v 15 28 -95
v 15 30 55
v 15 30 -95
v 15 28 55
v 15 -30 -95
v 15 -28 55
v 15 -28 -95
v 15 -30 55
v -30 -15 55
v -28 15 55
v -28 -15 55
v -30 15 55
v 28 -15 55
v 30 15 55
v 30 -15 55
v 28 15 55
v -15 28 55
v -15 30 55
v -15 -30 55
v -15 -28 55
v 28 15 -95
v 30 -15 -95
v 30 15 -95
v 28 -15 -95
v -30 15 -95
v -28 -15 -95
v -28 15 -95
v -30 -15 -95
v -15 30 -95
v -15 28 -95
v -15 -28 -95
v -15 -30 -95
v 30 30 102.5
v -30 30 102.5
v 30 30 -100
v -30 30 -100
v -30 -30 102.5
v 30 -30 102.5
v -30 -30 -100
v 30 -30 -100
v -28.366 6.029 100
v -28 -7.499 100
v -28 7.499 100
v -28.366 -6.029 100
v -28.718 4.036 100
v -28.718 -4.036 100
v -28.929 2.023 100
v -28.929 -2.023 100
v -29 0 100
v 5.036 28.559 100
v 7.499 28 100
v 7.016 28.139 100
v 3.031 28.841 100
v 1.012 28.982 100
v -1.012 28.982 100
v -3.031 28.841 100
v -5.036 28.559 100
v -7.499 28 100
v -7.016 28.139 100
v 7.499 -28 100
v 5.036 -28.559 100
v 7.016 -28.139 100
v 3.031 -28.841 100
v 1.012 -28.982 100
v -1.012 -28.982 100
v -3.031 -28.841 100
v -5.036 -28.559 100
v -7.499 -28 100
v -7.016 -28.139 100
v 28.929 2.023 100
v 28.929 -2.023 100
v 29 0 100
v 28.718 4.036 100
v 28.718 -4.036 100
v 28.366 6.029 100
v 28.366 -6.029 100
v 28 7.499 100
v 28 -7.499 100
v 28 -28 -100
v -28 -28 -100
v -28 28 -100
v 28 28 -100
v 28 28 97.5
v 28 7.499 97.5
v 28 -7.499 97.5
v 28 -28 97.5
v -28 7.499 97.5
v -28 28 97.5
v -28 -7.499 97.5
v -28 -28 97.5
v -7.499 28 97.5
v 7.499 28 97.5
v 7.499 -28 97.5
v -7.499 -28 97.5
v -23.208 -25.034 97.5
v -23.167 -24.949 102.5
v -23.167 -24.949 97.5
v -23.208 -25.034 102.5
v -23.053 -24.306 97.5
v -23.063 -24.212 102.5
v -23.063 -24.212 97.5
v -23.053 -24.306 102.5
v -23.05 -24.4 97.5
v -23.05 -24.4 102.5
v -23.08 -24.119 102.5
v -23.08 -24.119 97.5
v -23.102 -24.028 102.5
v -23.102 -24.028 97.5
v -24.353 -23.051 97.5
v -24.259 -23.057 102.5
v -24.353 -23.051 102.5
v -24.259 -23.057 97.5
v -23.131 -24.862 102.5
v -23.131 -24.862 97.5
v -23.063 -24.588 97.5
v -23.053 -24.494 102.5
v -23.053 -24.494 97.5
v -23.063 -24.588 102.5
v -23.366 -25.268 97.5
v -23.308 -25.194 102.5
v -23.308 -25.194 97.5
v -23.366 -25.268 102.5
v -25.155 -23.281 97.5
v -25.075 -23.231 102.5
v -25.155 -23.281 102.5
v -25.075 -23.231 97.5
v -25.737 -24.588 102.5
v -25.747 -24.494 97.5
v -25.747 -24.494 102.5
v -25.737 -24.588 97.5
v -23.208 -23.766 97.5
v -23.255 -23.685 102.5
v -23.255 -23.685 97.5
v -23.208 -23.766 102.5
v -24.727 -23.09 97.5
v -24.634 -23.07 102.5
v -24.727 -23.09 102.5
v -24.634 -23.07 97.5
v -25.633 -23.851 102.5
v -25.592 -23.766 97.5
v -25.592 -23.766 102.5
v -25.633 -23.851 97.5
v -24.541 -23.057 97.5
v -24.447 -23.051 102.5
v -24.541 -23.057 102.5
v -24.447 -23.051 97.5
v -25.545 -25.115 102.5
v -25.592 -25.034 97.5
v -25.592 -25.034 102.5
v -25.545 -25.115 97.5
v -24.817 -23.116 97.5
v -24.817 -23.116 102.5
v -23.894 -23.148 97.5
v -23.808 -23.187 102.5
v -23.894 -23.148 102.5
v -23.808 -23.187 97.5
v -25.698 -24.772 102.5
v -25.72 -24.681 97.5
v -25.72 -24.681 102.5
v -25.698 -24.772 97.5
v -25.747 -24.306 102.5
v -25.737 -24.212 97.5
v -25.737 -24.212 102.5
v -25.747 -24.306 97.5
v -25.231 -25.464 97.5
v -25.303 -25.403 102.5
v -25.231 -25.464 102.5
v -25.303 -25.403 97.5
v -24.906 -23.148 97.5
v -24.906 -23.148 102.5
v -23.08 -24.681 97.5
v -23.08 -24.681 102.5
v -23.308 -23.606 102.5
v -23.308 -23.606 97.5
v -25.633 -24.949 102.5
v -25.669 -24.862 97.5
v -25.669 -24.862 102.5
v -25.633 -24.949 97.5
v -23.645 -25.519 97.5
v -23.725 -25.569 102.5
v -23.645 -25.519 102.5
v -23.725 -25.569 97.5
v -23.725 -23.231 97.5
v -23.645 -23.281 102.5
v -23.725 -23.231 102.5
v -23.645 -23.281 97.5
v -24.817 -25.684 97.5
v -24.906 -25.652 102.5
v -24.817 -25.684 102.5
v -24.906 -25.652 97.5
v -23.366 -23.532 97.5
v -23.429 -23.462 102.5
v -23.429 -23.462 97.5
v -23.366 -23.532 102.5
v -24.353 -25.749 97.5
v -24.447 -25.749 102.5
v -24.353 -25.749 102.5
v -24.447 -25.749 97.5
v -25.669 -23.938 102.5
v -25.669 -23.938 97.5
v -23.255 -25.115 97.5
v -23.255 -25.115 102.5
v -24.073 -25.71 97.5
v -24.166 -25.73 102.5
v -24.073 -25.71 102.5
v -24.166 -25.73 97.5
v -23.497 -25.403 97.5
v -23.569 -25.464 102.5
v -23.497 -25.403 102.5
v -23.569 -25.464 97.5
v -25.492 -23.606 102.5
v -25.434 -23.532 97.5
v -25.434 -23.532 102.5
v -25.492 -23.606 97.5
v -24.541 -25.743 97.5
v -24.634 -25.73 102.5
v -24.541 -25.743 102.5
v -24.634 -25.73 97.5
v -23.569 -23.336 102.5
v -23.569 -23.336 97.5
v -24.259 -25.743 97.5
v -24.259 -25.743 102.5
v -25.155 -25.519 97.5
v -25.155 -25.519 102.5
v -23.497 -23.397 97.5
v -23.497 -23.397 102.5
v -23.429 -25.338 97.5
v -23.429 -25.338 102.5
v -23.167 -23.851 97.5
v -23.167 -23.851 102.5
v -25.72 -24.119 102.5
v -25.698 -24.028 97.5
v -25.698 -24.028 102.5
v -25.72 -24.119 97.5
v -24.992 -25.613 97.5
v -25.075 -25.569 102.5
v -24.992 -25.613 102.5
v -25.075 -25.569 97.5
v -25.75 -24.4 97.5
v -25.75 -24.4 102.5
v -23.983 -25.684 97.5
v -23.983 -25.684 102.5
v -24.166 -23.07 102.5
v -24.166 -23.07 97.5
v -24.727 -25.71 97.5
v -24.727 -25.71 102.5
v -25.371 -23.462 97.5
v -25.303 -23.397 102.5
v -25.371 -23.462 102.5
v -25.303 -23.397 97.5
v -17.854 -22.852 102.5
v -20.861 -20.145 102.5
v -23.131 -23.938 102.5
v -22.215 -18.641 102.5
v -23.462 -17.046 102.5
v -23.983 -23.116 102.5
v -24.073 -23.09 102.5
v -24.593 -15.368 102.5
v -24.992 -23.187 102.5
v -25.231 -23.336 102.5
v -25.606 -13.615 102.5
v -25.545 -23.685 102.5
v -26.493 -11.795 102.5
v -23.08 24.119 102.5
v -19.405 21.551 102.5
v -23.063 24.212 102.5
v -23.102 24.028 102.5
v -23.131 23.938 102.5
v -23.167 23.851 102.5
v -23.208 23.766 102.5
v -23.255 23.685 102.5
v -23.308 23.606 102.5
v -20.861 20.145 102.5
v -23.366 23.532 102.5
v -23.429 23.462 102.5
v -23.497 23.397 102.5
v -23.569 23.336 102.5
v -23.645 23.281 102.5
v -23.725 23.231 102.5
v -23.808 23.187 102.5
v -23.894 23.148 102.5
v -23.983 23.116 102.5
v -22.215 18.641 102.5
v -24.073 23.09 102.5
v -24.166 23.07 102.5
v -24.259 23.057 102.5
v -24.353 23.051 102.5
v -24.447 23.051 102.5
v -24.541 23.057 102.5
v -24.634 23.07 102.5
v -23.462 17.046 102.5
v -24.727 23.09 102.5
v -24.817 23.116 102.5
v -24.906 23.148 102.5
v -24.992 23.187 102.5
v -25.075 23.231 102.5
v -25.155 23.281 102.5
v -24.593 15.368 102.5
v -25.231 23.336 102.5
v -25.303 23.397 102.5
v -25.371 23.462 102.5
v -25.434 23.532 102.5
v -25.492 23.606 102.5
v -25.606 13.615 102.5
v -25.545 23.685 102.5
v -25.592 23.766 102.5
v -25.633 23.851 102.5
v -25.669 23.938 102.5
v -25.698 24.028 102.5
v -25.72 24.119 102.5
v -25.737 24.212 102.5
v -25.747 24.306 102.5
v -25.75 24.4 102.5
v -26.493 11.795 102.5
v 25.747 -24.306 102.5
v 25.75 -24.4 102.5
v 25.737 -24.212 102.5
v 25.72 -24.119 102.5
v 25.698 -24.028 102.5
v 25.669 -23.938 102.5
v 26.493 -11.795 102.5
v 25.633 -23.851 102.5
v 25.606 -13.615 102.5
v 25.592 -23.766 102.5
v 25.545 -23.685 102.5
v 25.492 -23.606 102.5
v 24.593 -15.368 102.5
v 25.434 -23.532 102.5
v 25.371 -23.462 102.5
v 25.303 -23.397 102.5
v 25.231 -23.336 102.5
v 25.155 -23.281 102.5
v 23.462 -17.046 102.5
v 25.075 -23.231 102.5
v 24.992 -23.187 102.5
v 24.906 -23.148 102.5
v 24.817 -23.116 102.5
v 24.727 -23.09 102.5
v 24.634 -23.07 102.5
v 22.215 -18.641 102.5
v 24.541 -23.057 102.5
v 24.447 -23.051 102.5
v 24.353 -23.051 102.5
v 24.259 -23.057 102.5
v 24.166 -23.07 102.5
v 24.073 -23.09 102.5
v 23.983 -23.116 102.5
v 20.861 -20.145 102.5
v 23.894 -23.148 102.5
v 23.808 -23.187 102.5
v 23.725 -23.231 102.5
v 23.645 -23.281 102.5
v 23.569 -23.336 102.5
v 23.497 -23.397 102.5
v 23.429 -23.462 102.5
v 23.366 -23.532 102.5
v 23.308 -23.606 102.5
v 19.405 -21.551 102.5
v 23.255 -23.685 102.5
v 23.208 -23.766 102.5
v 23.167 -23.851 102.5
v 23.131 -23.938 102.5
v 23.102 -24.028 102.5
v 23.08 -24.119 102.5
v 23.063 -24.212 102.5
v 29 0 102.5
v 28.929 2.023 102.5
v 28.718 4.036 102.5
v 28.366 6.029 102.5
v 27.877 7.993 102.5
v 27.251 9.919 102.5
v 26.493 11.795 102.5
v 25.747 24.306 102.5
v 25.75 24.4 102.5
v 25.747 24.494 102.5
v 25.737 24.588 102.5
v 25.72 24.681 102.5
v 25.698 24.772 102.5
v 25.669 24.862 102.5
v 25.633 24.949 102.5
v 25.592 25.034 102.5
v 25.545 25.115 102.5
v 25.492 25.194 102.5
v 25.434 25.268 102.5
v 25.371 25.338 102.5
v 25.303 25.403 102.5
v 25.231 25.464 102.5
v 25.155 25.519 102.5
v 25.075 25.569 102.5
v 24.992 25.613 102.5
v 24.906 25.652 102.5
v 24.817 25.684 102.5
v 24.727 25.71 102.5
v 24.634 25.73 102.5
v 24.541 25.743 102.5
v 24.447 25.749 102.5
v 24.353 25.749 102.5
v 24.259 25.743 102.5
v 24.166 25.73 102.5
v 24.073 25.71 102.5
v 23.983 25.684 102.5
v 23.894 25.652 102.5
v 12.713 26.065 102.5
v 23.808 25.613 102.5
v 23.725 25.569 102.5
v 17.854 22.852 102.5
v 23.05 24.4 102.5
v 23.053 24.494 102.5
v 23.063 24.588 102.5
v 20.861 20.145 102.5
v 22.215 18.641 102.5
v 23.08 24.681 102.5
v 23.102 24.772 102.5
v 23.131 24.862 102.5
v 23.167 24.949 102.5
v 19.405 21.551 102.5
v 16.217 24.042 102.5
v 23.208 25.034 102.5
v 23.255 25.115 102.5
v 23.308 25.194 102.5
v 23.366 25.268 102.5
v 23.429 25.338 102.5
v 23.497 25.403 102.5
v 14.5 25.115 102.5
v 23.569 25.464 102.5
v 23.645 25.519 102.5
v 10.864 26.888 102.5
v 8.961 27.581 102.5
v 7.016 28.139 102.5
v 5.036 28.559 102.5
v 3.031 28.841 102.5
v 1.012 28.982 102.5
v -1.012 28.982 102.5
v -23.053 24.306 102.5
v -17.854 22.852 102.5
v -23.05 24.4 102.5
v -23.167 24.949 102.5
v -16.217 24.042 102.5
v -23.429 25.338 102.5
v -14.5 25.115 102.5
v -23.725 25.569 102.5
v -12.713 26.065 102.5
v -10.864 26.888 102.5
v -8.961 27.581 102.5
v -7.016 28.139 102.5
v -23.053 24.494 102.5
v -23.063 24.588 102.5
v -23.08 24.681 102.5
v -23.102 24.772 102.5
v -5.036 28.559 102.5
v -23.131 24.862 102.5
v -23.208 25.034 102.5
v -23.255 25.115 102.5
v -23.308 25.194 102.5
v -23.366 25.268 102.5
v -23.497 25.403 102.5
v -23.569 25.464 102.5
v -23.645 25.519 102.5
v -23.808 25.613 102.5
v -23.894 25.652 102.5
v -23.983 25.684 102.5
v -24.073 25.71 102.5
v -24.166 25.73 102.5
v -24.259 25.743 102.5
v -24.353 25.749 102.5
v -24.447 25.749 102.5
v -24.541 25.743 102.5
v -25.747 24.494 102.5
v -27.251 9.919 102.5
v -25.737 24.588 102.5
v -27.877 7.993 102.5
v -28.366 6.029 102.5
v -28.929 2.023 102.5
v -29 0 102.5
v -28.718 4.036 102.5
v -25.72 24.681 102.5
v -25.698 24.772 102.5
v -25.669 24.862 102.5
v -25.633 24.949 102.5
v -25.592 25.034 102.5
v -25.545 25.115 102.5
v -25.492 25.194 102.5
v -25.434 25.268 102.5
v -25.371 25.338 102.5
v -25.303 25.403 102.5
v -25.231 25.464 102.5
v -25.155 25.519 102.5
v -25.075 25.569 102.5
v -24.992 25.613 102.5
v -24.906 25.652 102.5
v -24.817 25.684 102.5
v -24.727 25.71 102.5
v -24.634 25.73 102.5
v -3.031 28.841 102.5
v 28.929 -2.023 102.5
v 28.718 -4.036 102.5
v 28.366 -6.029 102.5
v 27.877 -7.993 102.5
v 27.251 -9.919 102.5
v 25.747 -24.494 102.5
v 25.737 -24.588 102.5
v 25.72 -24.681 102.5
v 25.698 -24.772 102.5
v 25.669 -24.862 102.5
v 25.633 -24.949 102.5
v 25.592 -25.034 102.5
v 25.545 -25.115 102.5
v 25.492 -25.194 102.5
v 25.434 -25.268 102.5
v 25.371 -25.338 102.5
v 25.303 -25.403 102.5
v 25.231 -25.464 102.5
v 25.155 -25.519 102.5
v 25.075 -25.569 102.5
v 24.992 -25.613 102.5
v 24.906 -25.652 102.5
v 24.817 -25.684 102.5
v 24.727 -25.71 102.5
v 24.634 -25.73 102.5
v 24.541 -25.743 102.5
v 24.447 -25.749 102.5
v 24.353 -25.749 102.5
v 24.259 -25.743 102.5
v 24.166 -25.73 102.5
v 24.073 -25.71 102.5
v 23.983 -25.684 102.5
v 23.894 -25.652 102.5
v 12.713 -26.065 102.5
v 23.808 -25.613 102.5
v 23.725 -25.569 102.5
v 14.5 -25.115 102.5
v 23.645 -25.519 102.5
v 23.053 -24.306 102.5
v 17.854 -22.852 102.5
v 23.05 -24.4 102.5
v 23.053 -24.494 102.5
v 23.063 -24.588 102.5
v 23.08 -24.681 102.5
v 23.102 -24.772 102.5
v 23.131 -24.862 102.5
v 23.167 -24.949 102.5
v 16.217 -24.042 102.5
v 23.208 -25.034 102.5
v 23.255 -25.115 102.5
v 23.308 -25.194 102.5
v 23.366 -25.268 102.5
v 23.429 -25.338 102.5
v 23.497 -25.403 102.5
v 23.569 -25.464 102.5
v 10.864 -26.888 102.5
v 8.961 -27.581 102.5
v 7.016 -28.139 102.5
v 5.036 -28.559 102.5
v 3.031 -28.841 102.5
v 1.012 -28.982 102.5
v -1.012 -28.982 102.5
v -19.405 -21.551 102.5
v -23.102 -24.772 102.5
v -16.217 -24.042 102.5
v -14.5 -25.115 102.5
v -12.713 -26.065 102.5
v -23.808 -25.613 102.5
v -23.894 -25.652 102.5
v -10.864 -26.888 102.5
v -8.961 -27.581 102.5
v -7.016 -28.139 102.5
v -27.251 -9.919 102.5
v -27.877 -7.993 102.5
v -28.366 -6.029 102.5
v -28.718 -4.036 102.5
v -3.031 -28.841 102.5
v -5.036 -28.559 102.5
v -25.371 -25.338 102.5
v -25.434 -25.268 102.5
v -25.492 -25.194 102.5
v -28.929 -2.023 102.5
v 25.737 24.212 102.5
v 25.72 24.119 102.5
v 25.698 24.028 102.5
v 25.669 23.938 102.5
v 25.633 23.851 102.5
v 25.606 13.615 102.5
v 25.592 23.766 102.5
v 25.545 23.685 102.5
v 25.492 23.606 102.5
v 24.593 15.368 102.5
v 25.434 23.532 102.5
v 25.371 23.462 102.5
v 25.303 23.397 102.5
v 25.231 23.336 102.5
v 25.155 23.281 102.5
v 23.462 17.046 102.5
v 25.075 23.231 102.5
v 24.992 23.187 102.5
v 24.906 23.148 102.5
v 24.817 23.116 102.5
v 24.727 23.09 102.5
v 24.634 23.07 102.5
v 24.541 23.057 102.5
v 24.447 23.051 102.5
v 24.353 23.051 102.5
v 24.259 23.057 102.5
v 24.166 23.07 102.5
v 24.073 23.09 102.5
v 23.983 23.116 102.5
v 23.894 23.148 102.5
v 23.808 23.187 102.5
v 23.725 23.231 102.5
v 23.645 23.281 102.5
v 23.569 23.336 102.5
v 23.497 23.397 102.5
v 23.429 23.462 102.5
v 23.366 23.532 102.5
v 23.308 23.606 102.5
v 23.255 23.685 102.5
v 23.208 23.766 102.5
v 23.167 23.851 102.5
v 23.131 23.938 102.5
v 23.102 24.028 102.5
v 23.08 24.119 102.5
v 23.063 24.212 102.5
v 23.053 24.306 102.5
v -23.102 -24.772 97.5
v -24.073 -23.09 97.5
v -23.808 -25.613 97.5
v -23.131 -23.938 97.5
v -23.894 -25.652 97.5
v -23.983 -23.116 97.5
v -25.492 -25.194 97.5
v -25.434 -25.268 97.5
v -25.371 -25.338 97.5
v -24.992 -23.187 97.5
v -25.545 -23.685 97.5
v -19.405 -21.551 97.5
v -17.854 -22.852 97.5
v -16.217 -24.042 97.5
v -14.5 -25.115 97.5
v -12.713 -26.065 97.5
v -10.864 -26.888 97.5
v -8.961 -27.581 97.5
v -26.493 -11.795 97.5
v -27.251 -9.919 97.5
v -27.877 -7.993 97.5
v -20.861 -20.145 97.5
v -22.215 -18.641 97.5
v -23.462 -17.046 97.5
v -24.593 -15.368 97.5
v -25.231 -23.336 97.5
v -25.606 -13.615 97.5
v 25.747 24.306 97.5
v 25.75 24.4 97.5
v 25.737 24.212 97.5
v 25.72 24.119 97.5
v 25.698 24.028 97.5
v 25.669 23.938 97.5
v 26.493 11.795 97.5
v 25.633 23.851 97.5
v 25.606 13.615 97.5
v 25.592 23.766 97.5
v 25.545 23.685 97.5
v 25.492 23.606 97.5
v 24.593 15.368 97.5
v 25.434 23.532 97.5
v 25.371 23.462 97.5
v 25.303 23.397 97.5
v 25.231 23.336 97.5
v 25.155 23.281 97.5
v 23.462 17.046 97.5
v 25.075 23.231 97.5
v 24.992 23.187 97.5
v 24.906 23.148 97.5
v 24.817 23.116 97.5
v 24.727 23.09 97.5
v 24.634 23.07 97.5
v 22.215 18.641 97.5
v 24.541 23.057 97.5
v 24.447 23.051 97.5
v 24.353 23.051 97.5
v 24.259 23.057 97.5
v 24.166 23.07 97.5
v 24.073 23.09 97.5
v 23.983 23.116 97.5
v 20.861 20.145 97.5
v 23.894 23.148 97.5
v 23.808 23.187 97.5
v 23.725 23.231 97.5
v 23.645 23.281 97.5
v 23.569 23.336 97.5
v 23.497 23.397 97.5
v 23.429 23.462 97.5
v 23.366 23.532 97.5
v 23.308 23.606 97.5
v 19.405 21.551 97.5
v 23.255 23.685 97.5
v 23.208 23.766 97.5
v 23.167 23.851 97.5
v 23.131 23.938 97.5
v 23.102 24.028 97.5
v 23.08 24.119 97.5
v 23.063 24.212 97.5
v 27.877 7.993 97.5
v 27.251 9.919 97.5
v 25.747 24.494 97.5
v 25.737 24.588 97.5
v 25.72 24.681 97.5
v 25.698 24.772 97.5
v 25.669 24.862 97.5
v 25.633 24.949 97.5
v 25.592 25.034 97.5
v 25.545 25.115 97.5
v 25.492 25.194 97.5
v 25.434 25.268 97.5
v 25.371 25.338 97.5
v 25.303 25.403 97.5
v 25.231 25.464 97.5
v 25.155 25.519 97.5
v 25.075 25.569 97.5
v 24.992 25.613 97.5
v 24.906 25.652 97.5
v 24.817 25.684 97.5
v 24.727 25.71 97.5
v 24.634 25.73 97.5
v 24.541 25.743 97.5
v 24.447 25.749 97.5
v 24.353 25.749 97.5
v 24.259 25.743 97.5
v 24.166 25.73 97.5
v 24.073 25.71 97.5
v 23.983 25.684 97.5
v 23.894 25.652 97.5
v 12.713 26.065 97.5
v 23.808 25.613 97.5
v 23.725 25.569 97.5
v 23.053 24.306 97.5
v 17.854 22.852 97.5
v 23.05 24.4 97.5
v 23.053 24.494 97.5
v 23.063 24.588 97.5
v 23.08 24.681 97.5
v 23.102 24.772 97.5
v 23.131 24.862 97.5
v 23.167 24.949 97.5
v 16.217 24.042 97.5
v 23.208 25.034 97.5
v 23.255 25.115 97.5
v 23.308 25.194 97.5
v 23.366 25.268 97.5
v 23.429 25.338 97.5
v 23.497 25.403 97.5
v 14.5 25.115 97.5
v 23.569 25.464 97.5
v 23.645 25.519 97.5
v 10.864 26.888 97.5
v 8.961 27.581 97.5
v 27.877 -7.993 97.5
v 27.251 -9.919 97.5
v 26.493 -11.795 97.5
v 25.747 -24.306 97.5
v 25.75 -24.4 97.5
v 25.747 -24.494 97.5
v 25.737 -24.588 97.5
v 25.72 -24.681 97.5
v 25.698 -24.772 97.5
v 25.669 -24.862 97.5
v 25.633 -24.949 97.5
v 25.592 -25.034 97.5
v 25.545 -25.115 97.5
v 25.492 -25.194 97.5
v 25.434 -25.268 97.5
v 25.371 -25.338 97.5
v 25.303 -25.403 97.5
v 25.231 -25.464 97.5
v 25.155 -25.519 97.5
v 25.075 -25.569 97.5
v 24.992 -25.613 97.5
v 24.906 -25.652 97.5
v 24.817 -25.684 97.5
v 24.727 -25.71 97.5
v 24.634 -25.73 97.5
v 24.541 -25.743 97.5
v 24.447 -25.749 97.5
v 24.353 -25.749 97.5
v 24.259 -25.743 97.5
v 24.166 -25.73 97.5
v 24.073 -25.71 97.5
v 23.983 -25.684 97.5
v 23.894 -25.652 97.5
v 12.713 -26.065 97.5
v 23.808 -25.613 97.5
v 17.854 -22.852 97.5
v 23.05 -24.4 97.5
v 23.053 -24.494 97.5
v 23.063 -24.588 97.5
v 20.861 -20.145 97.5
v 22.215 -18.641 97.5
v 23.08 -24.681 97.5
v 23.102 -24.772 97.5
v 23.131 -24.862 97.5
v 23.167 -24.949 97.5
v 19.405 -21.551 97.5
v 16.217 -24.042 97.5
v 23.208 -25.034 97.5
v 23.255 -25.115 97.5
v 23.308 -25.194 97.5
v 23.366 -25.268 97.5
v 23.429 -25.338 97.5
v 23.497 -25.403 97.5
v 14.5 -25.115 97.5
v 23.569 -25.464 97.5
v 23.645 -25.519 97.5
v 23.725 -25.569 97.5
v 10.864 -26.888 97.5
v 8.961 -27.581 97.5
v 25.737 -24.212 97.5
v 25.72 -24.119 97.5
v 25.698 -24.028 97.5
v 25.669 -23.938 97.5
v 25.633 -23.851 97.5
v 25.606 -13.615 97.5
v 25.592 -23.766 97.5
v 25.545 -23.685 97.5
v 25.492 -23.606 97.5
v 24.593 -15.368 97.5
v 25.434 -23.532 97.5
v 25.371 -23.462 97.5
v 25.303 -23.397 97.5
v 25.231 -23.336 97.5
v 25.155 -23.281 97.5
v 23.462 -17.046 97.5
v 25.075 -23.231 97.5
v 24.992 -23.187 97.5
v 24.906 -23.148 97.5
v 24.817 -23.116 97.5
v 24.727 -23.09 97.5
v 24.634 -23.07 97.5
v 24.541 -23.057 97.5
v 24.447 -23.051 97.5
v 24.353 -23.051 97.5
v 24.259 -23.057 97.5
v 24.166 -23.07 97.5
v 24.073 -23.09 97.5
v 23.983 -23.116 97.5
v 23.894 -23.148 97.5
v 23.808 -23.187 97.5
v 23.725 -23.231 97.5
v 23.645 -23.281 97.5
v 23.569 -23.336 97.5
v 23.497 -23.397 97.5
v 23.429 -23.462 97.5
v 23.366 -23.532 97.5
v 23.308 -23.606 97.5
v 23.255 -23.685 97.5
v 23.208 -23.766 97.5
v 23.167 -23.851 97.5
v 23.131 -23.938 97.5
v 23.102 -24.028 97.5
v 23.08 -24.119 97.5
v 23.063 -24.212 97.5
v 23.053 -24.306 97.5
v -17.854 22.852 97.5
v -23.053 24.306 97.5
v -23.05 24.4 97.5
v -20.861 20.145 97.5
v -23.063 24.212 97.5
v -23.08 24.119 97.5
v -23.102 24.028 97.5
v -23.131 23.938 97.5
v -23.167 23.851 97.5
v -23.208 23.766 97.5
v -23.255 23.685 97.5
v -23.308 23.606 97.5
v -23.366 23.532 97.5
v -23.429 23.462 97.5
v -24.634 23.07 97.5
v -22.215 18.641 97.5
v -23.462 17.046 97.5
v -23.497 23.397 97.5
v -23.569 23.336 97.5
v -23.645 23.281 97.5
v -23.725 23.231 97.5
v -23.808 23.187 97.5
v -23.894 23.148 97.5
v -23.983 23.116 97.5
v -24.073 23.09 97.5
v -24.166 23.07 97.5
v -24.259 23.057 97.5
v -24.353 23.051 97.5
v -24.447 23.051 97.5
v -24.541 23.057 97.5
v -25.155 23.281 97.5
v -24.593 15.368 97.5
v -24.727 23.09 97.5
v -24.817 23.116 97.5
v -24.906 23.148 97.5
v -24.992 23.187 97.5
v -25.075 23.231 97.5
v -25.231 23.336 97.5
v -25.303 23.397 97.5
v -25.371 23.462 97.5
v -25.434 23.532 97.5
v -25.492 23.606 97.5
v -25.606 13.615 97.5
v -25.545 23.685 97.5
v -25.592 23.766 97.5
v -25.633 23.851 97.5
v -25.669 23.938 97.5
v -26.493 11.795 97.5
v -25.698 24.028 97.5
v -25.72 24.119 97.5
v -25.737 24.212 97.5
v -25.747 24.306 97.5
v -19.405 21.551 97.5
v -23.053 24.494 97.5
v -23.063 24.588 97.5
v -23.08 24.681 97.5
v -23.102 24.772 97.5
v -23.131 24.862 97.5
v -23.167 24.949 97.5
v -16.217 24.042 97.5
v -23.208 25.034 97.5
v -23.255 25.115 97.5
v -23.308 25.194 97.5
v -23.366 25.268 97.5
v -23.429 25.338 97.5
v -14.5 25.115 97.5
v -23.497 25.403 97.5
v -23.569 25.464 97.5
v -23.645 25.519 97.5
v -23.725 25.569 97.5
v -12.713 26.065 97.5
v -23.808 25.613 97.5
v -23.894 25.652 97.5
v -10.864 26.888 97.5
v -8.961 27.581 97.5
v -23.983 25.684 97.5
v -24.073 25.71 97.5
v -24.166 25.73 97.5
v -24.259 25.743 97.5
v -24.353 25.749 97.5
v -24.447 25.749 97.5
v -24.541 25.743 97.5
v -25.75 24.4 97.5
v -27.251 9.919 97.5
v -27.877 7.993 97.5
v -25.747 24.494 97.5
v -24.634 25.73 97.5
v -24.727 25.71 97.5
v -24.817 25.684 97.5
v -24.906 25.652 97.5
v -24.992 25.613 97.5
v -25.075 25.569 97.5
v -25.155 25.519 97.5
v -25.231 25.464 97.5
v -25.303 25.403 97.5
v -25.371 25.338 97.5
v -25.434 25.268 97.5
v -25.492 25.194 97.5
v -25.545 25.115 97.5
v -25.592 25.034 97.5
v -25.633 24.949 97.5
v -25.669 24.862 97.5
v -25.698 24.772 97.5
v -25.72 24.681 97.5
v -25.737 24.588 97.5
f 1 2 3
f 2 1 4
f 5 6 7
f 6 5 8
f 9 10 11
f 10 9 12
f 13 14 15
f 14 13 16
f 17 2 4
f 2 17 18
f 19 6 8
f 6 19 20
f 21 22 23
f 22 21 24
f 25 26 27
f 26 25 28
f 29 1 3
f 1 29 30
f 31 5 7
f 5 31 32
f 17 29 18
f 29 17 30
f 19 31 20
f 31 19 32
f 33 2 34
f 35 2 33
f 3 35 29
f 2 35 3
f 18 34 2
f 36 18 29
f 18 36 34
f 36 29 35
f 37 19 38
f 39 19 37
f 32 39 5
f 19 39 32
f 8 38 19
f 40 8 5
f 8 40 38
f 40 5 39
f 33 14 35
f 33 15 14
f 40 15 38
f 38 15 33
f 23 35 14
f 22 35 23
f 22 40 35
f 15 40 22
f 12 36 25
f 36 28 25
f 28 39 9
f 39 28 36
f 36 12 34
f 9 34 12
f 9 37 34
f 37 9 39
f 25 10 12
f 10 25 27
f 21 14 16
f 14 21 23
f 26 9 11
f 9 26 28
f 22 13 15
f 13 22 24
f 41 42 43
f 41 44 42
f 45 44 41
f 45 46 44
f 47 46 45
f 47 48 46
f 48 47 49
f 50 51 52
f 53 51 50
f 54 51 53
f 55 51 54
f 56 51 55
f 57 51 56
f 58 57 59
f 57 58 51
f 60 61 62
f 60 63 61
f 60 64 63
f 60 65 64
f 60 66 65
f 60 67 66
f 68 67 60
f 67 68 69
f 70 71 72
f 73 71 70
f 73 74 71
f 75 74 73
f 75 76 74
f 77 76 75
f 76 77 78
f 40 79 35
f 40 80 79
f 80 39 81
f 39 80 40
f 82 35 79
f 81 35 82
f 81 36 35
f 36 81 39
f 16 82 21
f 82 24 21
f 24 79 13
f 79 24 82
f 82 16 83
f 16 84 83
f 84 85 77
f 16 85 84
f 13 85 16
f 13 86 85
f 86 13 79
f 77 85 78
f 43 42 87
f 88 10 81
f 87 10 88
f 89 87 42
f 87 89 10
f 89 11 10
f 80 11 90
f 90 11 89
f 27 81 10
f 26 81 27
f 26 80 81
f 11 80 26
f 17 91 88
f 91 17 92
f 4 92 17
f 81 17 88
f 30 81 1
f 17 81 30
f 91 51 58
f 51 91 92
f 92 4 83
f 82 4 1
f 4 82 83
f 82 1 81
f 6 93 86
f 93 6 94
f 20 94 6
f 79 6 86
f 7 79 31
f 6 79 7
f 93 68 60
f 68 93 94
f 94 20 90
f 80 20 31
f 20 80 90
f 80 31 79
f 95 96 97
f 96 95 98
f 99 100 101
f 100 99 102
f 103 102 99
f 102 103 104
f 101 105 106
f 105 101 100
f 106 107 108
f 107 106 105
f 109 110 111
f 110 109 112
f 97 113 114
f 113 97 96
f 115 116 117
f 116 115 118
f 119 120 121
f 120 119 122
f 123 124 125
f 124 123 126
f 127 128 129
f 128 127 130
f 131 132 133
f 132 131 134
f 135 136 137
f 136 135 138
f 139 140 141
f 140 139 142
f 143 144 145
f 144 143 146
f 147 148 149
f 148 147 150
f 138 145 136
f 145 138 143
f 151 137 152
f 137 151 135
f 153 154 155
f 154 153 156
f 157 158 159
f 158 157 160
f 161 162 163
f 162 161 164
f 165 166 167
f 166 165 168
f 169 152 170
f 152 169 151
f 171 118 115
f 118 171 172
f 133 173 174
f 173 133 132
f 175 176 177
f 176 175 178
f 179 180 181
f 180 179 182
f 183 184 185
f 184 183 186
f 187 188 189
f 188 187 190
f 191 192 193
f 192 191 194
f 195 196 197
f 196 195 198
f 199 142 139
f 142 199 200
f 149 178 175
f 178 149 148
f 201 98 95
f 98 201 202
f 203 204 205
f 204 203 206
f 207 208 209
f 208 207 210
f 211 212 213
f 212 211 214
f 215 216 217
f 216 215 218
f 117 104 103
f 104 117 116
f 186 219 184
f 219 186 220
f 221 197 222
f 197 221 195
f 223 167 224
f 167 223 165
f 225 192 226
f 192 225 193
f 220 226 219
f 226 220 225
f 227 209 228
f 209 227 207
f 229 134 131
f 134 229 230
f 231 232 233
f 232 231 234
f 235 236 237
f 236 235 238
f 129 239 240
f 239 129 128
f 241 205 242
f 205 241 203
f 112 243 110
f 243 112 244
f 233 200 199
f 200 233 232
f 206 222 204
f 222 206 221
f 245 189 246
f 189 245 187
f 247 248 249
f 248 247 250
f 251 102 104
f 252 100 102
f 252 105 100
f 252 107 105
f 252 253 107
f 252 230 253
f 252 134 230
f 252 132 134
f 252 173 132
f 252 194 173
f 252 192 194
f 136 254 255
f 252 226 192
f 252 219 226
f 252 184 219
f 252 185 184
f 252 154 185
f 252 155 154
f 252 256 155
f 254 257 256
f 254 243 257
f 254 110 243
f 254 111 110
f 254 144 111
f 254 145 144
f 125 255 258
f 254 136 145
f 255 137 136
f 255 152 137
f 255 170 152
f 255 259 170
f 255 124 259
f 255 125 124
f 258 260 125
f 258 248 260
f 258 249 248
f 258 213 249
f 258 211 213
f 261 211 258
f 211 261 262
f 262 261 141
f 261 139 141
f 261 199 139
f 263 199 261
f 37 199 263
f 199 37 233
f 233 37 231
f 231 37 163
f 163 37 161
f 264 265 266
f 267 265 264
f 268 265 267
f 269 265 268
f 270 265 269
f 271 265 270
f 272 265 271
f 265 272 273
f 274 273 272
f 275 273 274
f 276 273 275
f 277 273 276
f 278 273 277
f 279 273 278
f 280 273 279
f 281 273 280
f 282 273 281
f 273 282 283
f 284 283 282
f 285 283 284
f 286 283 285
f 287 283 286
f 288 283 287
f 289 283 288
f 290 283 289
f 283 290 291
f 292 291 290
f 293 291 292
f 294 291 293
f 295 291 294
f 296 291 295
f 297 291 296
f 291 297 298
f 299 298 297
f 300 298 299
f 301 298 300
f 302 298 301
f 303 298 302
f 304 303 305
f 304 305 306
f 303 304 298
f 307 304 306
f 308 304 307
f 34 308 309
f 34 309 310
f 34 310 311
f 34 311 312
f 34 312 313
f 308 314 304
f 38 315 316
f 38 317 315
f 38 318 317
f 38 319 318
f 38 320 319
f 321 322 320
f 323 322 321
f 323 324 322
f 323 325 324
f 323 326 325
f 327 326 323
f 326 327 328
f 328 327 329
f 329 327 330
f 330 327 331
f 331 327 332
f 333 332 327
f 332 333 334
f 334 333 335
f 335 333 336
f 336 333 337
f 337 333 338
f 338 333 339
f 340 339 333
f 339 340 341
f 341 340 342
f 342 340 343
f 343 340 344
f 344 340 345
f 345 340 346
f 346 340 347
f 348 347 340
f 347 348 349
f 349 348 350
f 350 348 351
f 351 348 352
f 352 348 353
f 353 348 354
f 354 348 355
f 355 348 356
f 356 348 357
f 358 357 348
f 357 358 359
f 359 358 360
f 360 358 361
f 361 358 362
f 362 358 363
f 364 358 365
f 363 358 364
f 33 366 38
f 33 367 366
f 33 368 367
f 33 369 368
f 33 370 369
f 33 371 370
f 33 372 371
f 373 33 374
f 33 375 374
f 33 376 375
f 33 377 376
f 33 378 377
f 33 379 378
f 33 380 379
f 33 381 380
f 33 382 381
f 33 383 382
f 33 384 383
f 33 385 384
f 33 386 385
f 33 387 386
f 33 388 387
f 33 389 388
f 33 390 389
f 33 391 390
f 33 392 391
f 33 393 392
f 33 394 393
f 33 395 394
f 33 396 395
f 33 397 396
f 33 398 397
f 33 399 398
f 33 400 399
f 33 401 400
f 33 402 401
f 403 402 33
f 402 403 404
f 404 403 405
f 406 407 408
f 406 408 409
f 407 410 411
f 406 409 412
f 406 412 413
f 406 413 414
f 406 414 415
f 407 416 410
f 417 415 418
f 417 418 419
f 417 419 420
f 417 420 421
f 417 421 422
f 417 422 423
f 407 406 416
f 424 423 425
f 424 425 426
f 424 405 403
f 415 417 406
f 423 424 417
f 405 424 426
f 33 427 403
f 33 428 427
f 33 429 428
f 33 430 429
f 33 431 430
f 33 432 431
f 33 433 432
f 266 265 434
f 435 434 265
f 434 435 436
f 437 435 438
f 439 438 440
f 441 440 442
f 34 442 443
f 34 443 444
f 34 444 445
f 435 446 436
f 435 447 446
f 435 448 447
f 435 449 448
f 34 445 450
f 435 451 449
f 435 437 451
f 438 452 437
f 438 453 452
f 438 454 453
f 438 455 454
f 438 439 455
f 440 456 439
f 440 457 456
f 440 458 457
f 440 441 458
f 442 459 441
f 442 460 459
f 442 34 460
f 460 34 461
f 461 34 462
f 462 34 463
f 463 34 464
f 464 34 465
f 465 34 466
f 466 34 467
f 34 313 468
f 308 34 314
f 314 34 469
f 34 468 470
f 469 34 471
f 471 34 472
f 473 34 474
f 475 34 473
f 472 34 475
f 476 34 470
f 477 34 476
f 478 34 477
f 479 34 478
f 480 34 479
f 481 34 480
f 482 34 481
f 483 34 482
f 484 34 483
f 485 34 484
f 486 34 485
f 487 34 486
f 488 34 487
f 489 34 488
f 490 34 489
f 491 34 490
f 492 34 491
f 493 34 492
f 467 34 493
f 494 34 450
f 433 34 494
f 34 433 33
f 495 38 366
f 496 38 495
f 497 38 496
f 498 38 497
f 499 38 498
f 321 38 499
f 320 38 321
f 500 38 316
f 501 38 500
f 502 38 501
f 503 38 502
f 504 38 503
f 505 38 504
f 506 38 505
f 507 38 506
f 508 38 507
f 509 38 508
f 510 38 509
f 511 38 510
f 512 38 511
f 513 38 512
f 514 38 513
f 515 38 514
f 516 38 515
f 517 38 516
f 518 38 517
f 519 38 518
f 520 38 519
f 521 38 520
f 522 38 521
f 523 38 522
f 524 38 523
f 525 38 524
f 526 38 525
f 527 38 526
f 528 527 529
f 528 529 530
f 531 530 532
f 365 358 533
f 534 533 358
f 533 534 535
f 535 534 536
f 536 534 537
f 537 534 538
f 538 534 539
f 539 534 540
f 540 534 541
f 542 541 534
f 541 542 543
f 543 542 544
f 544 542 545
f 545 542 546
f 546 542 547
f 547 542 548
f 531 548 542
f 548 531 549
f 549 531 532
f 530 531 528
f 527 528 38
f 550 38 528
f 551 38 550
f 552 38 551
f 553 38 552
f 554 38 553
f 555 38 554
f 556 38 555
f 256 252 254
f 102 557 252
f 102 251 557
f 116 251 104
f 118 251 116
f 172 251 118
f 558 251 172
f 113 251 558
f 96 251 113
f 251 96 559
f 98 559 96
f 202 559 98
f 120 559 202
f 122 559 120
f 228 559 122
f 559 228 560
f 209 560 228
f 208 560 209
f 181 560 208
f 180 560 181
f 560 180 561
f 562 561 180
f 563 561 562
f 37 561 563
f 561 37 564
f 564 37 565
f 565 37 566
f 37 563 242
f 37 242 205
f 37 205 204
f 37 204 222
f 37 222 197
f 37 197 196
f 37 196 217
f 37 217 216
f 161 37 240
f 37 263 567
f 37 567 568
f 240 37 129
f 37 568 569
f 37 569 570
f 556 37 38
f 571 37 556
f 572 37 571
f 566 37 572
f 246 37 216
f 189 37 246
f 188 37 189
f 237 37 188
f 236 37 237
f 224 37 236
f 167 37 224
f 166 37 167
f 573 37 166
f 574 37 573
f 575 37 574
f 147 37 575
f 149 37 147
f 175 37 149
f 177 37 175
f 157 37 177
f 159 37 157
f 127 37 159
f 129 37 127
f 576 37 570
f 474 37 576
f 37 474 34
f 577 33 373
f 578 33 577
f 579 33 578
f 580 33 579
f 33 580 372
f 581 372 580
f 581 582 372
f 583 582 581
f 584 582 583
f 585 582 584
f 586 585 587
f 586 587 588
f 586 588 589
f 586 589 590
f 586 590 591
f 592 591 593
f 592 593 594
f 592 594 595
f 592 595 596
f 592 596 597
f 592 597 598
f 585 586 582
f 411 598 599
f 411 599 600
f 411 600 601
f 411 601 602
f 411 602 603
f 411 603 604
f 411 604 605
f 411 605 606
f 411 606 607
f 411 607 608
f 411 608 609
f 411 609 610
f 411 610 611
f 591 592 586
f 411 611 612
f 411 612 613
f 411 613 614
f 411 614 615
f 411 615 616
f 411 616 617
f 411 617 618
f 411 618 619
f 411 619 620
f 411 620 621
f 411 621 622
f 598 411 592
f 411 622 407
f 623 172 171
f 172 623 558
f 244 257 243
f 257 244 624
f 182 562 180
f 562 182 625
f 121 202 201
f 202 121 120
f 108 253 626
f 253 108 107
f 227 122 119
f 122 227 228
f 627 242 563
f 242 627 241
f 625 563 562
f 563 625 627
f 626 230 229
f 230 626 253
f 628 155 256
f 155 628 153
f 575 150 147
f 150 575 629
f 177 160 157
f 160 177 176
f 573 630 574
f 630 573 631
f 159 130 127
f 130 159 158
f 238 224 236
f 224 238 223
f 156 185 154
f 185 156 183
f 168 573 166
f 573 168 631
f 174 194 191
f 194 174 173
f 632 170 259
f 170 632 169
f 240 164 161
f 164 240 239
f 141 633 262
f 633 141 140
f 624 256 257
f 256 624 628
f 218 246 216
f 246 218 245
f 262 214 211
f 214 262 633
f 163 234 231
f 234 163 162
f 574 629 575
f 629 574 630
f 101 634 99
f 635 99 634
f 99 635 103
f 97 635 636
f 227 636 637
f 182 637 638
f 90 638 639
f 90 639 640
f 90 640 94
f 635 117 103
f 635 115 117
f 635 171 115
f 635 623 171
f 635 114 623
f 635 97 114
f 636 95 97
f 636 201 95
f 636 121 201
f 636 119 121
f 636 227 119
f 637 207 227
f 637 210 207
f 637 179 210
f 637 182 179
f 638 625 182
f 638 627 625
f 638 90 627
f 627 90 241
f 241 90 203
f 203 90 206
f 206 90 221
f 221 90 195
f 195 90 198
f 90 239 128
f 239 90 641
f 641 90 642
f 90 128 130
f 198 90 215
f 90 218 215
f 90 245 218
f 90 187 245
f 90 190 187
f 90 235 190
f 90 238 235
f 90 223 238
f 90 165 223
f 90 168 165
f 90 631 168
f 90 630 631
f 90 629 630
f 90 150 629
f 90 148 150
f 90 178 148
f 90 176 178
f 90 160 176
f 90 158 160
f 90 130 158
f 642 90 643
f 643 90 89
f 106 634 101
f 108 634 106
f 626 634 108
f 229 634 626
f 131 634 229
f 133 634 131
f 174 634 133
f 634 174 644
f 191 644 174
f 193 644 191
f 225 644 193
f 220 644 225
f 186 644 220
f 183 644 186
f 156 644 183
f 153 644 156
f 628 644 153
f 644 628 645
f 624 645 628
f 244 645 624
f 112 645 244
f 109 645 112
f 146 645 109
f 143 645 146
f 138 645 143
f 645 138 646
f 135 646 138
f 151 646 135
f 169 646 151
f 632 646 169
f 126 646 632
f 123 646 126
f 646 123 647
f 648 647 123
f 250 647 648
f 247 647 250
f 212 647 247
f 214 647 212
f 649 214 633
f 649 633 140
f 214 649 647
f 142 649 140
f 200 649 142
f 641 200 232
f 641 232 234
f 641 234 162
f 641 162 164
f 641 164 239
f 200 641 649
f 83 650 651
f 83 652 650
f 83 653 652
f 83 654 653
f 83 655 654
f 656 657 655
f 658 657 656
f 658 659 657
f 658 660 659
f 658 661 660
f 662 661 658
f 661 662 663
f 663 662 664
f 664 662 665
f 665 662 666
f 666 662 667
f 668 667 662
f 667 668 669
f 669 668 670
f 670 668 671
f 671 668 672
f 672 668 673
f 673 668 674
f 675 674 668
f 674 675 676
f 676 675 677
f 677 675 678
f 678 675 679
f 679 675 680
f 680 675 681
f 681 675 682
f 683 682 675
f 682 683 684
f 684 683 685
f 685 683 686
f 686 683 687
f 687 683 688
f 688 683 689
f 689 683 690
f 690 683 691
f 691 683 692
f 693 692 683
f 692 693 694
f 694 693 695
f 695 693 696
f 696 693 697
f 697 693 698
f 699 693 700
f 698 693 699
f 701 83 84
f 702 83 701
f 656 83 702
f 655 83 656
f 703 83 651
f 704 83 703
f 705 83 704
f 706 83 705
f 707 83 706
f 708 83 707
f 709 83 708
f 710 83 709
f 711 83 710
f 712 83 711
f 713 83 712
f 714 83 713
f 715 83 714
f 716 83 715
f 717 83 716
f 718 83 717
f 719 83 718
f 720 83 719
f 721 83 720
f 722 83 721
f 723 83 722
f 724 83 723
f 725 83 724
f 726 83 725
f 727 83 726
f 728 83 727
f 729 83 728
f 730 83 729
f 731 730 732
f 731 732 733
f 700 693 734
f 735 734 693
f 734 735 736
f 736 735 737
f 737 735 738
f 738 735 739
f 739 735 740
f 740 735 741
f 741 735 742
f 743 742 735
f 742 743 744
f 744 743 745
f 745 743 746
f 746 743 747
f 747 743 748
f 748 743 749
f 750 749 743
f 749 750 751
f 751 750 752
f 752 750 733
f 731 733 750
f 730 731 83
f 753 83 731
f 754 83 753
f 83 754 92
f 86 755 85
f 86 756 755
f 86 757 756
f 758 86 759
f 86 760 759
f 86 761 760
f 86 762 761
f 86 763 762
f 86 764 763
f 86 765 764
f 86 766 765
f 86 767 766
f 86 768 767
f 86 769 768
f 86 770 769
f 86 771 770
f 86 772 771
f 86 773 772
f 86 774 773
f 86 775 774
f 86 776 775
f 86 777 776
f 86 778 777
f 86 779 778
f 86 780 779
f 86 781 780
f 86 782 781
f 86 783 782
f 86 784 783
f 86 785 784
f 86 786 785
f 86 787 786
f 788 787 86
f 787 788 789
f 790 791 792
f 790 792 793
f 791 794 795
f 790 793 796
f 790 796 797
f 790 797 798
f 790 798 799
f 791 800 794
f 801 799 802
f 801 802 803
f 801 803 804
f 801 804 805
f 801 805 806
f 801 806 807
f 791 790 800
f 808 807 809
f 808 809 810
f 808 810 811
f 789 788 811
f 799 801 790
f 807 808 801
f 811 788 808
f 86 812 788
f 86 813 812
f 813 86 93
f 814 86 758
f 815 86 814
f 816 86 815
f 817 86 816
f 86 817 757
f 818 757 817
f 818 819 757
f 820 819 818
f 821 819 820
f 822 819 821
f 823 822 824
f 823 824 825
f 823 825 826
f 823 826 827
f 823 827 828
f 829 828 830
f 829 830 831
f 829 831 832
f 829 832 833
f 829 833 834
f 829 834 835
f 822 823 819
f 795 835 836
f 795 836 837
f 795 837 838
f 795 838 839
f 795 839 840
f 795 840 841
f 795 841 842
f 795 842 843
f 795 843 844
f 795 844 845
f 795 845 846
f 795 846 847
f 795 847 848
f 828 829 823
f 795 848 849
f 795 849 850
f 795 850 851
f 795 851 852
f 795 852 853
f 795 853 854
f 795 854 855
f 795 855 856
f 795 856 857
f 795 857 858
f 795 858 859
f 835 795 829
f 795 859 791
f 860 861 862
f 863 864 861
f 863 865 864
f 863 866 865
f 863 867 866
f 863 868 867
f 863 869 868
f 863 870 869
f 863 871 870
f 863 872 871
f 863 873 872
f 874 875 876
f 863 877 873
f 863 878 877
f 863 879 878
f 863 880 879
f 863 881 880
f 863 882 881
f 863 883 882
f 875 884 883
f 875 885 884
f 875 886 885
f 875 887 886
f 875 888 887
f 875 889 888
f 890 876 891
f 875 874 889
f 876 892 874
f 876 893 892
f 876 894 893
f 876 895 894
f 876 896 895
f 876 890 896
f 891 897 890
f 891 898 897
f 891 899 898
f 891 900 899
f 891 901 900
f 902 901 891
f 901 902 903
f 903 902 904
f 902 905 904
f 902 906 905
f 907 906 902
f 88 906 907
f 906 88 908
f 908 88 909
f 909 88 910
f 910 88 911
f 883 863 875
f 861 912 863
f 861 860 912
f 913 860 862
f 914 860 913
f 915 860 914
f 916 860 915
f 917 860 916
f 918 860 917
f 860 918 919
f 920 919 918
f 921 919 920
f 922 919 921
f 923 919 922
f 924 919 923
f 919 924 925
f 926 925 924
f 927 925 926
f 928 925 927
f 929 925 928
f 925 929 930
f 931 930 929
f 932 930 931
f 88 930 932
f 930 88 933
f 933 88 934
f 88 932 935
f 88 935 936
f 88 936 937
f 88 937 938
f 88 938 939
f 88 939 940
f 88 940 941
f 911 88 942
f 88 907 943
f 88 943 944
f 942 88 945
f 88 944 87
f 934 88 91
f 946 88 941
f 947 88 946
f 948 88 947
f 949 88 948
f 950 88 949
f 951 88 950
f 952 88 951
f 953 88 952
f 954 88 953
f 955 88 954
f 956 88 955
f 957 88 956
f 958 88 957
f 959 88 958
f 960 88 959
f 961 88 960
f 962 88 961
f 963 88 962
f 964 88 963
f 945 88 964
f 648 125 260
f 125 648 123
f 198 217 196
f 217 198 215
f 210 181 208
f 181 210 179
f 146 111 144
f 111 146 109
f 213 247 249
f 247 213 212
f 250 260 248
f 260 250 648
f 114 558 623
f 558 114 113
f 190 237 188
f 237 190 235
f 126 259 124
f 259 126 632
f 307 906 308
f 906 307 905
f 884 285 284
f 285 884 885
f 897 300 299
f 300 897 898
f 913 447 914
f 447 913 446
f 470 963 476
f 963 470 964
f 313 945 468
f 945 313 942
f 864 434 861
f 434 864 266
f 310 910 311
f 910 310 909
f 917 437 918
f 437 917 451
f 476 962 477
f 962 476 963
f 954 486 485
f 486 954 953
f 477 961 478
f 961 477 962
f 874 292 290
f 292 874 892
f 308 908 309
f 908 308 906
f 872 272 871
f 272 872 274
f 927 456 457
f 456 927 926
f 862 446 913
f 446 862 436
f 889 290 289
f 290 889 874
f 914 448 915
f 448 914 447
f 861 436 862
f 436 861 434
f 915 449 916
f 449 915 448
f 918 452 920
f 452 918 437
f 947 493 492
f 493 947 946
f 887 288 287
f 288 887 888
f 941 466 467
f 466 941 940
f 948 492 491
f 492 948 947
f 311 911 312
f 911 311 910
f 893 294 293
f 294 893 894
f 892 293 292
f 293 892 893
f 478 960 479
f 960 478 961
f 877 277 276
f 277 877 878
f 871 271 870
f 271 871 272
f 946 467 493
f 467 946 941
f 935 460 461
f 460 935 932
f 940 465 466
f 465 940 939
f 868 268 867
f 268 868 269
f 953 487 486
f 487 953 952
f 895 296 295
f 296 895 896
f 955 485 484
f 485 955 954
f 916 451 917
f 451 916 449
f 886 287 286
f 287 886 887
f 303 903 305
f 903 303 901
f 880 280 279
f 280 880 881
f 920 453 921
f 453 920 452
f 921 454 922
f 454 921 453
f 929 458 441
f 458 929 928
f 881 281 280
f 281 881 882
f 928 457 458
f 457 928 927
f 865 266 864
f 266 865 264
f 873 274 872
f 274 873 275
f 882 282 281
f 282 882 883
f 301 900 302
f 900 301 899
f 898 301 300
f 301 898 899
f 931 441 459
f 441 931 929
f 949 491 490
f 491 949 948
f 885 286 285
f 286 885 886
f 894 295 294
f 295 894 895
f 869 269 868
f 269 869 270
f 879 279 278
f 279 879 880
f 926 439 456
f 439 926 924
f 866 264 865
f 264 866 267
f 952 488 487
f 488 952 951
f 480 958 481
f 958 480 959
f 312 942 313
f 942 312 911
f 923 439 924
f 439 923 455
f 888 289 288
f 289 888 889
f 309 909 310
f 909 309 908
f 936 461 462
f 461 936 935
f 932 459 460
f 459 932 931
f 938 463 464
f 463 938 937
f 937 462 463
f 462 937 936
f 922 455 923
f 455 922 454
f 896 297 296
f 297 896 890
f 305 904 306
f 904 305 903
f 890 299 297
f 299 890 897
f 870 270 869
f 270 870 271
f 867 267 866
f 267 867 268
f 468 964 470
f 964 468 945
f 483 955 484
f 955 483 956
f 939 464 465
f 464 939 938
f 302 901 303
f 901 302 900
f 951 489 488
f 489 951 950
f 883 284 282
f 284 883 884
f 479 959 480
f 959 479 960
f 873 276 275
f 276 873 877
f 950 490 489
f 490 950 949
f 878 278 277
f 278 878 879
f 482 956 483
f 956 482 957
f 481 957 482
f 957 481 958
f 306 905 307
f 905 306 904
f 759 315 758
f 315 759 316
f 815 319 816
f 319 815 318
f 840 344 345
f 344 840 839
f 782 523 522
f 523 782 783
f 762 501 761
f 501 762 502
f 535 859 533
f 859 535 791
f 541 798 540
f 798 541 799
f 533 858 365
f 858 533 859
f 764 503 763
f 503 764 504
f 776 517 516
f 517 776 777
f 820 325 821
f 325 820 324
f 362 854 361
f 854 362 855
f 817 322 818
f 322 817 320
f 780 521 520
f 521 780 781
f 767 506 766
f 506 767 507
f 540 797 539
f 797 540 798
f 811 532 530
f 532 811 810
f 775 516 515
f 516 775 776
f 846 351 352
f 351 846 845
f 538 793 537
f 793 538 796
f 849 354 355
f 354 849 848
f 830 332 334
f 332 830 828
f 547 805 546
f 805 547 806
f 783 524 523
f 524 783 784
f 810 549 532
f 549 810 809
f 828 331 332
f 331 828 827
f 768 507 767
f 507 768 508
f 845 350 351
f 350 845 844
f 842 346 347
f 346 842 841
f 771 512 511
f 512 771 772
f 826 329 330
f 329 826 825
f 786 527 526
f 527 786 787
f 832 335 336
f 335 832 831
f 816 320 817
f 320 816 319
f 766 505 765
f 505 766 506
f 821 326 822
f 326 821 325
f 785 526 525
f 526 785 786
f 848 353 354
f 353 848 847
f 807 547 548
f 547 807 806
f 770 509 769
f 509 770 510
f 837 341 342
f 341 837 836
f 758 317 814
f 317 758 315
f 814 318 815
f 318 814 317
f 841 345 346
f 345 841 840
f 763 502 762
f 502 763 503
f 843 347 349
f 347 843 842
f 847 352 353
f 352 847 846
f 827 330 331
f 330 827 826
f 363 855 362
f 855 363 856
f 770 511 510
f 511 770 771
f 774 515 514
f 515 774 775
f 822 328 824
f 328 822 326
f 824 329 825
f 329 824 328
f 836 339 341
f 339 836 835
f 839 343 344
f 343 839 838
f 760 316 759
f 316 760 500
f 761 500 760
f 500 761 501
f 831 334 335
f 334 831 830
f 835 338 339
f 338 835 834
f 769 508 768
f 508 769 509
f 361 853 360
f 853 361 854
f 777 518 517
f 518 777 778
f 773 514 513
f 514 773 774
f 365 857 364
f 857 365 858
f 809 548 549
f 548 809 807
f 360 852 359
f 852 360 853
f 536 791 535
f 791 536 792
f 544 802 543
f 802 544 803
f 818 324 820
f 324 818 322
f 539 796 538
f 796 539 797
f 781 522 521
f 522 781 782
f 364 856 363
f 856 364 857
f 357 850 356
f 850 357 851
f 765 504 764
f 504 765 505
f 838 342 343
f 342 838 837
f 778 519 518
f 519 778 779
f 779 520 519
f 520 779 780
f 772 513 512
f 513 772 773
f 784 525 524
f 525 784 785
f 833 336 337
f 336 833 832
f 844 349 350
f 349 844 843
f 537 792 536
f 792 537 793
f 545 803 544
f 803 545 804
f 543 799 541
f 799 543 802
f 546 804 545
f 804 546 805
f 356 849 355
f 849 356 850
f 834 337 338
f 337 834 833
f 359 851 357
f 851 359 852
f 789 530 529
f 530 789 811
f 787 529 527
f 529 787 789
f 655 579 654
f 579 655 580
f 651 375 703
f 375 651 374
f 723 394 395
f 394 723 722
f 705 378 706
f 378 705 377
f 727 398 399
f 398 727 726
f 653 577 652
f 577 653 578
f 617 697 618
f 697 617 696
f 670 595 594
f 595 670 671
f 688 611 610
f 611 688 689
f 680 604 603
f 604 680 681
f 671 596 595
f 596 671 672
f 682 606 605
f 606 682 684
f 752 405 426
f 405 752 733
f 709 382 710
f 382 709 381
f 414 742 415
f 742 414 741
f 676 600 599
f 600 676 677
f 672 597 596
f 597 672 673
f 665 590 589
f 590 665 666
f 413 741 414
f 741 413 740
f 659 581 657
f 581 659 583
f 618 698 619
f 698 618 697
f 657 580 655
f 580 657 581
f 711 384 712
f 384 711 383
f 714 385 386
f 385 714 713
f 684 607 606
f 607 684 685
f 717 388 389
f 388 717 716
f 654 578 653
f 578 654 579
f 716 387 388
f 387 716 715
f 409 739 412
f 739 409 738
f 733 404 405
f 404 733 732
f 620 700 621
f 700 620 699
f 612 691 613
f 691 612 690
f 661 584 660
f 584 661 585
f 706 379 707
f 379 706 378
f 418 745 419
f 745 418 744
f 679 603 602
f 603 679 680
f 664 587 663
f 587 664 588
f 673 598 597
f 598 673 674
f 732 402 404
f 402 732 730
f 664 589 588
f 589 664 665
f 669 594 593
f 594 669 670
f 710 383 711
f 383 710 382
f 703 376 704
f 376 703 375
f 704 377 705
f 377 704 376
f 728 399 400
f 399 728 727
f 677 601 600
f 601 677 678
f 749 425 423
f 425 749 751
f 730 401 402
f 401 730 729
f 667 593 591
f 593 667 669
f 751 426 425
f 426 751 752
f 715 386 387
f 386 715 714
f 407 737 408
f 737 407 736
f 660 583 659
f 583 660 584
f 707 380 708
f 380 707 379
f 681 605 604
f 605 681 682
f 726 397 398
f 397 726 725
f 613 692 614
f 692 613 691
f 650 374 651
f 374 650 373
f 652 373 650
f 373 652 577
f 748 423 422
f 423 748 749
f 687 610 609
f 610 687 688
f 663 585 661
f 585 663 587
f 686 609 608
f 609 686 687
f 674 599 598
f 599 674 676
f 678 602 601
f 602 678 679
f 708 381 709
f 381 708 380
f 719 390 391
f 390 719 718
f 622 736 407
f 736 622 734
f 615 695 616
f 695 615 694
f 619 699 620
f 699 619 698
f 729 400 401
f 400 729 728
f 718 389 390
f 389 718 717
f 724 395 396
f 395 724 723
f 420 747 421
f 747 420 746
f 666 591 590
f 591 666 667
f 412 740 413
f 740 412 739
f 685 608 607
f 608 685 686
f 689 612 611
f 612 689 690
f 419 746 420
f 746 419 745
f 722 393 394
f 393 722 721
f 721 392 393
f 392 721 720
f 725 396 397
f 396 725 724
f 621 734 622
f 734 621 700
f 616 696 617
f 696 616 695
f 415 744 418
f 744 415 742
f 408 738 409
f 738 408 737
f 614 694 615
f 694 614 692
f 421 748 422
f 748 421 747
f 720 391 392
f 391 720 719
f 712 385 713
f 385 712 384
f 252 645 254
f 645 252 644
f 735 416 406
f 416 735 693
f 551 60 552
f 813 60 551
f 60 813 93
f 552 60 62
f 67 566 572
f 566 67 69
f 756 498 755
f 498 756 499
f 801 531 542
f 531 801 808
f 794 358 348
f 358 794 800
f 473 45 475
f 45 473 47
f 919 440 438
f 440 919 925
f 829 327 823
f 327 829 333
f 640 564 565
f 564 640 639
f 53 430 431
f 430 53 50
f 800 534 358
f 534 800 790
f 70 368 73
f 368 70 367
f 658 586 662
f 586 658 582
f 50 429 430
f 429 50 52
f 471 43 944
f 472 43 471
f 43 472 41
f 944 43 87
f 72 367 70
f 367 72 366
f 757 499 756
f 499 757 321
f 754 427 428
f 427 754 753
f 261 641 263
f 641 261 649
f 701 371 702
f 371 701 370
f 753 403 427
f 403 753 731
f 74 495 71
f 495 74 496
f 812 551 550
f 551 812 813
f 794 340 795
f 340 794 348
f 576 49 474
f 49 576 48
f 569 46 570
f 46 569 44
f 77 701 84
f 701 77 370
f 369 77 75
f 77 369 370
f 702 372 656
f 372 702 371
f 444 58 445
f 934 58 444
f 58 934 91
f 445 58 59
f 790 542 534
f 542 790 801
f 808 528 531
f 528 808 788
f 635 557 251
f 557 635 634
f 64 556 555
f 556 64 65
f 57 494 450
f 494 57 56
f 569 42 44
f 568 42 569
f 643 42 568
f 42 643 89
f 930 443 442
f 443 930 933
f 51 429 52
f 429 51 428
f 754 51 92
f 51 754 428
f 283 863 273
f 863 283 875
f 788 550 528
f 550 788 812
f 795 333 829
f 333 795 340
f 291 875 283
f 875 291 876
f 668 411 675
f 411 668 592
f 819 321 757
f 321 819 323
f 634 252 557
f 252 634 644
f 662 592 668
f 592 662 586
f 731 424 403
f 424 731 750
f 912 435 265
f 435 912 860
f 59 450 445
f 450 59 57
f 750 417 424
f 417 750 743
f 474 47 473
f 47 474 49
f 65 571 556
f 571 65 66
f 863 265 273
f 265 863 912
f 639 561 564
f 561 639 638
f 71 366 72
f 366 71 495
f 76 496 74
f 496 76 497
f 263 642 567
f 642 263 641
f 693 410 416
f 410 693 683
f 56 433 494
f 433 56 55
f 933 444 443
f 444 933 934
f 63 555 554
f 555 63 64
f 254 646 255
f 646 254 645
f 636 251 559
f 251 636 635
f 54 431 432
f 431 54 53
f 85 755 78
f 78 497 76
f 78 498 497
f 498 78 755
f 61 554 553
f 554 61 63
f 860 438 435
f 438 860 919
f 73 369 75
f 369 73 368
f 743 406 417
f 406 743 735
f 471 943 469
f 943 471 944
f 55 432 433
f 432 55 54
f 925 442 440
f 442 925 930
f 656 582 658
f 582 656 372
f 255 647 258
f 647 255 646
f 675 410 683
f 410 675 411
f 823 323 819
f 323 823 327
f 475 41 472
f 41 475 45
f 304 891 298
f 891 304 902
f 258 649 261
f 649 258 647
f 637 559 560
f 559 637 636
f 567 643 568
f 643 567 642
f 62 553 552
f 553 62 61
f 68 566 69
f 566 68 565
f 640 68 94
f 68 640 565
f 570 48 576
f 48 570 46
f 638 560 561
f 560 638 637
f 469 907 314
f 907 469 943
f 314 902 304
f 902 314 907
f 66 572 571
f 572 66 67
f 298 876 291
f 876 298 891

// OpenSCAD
$fn = 90;
height = 200;
width = 60;
wallThickness = 2;

difference(){
	cube([width, width, height], center=true);
	innerWidth = width-2*wallThickness;
	#cube([innerWidth, innerWidth, height], center=true);
	
	slitHeight = 150;
	slitWidth = 30;
	translate([0, 0, (slitHeight-height)/2+5]){
		#cube([slitWidth, width, slitHeight], center=true);
		#cube([width, slitWidth, slitHeight], center=true);
	}
}

translate([0, 0, height/2])
	difference(){
		topHeight = 5;
		cube([width, width, topHeight], center=true);
		#cylinder(d=58, h=topHeight, center=true);
		for(x = [-24.4, 24.4]){
			for(y = [-24.4, 24.4]){
				translate([x, y, 0])
					#cylinder(d=2.7, h=topHeight, center=true);
			}
		}
	}
